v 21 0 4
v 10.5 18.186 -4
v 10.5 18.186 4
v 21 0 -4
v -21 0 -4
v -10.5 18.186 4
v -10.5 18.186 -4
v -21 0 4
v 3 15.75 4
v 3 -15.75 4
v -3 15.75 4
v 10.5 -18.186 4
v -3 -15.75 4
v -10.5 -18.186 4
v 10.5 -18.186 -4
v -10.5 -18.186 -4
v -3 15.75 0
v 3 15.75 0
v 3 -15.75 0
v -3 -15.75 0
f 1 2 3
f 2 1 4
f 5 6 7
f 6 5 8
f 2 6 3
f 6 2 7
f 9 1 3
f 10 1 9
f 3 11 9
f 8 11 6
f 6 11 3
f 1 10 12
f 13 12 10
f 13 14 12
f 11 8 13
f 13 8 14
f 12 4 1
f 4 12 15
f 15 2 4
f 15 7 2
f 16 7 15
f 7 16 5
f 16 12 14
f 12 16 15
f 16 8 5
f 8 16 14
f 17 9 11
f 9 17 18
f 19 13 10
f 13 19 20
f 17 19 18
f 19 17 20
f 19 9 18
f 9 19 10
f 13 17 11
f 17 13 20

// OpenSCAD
difference() {
	translate(v = [0, 0, 0]) {
		rotate(a = [0, 0, 0]) {
			cylinder($fn = 6, center = true, h = 8, r1 = 21, r2 = 21);
		}
	}
	translate(v = [0, 0, 4.0000000000]) {
		rotate(a = [0, 0, 90]) {
			cube(center = true, size = [31.5000000000, 6, 8]);
		}
	}
}
/***********************************************
*********      SolidPython code:      **********
************************************************
 
__author__ = 'Mark Weinreuter'

from config import *

cut = C(mirror_slit_width, mirror_thickness, block_base_h_mm)
cut.rz = 90
cut.z = block_base_h_mm / 2
base = make_base()

mir_tile1 = base - cut
cut.rz = 60
mir_tile2 = base - cut

scad_render_to_file(mir_tile1, "scad/mirror_tile1.scad")
scad_render_to_file(mir_tile2, "scad/mirror_tile2.scad")

# holes_rots = (60, 60 + 180, 60 + 90, (60 + 90 + 180))
# holes = []
# for rot in holes_rots:
#    holes.append(
#        up(block_base_h_mm / 2)(rotate([0, 0, rot])(left(connector_dist_mm)(cylinder(connector_r_mm, h=block_base_h_mm, center=True, segments=256)))))


cable_hole = cylinder(cable_r_mm, h=block_base_h_mm * 10, center=True)
# base -= cable_hole
# for h in holes:
#    base -= h

turret_w = 30
turret_height = 50
turret_th = 10
t = cube([turret_w, turret_w, turret_height], center=True)
t_cutout = cube([turret_w - 2 * turret_th, turret_w, turret_height], center=True)
t -= translate([0, turret_th, -turret_th])(t_cutout)

scad_render_to_file(t, "scad/block_turret.scad")
 
 
************************************************/
